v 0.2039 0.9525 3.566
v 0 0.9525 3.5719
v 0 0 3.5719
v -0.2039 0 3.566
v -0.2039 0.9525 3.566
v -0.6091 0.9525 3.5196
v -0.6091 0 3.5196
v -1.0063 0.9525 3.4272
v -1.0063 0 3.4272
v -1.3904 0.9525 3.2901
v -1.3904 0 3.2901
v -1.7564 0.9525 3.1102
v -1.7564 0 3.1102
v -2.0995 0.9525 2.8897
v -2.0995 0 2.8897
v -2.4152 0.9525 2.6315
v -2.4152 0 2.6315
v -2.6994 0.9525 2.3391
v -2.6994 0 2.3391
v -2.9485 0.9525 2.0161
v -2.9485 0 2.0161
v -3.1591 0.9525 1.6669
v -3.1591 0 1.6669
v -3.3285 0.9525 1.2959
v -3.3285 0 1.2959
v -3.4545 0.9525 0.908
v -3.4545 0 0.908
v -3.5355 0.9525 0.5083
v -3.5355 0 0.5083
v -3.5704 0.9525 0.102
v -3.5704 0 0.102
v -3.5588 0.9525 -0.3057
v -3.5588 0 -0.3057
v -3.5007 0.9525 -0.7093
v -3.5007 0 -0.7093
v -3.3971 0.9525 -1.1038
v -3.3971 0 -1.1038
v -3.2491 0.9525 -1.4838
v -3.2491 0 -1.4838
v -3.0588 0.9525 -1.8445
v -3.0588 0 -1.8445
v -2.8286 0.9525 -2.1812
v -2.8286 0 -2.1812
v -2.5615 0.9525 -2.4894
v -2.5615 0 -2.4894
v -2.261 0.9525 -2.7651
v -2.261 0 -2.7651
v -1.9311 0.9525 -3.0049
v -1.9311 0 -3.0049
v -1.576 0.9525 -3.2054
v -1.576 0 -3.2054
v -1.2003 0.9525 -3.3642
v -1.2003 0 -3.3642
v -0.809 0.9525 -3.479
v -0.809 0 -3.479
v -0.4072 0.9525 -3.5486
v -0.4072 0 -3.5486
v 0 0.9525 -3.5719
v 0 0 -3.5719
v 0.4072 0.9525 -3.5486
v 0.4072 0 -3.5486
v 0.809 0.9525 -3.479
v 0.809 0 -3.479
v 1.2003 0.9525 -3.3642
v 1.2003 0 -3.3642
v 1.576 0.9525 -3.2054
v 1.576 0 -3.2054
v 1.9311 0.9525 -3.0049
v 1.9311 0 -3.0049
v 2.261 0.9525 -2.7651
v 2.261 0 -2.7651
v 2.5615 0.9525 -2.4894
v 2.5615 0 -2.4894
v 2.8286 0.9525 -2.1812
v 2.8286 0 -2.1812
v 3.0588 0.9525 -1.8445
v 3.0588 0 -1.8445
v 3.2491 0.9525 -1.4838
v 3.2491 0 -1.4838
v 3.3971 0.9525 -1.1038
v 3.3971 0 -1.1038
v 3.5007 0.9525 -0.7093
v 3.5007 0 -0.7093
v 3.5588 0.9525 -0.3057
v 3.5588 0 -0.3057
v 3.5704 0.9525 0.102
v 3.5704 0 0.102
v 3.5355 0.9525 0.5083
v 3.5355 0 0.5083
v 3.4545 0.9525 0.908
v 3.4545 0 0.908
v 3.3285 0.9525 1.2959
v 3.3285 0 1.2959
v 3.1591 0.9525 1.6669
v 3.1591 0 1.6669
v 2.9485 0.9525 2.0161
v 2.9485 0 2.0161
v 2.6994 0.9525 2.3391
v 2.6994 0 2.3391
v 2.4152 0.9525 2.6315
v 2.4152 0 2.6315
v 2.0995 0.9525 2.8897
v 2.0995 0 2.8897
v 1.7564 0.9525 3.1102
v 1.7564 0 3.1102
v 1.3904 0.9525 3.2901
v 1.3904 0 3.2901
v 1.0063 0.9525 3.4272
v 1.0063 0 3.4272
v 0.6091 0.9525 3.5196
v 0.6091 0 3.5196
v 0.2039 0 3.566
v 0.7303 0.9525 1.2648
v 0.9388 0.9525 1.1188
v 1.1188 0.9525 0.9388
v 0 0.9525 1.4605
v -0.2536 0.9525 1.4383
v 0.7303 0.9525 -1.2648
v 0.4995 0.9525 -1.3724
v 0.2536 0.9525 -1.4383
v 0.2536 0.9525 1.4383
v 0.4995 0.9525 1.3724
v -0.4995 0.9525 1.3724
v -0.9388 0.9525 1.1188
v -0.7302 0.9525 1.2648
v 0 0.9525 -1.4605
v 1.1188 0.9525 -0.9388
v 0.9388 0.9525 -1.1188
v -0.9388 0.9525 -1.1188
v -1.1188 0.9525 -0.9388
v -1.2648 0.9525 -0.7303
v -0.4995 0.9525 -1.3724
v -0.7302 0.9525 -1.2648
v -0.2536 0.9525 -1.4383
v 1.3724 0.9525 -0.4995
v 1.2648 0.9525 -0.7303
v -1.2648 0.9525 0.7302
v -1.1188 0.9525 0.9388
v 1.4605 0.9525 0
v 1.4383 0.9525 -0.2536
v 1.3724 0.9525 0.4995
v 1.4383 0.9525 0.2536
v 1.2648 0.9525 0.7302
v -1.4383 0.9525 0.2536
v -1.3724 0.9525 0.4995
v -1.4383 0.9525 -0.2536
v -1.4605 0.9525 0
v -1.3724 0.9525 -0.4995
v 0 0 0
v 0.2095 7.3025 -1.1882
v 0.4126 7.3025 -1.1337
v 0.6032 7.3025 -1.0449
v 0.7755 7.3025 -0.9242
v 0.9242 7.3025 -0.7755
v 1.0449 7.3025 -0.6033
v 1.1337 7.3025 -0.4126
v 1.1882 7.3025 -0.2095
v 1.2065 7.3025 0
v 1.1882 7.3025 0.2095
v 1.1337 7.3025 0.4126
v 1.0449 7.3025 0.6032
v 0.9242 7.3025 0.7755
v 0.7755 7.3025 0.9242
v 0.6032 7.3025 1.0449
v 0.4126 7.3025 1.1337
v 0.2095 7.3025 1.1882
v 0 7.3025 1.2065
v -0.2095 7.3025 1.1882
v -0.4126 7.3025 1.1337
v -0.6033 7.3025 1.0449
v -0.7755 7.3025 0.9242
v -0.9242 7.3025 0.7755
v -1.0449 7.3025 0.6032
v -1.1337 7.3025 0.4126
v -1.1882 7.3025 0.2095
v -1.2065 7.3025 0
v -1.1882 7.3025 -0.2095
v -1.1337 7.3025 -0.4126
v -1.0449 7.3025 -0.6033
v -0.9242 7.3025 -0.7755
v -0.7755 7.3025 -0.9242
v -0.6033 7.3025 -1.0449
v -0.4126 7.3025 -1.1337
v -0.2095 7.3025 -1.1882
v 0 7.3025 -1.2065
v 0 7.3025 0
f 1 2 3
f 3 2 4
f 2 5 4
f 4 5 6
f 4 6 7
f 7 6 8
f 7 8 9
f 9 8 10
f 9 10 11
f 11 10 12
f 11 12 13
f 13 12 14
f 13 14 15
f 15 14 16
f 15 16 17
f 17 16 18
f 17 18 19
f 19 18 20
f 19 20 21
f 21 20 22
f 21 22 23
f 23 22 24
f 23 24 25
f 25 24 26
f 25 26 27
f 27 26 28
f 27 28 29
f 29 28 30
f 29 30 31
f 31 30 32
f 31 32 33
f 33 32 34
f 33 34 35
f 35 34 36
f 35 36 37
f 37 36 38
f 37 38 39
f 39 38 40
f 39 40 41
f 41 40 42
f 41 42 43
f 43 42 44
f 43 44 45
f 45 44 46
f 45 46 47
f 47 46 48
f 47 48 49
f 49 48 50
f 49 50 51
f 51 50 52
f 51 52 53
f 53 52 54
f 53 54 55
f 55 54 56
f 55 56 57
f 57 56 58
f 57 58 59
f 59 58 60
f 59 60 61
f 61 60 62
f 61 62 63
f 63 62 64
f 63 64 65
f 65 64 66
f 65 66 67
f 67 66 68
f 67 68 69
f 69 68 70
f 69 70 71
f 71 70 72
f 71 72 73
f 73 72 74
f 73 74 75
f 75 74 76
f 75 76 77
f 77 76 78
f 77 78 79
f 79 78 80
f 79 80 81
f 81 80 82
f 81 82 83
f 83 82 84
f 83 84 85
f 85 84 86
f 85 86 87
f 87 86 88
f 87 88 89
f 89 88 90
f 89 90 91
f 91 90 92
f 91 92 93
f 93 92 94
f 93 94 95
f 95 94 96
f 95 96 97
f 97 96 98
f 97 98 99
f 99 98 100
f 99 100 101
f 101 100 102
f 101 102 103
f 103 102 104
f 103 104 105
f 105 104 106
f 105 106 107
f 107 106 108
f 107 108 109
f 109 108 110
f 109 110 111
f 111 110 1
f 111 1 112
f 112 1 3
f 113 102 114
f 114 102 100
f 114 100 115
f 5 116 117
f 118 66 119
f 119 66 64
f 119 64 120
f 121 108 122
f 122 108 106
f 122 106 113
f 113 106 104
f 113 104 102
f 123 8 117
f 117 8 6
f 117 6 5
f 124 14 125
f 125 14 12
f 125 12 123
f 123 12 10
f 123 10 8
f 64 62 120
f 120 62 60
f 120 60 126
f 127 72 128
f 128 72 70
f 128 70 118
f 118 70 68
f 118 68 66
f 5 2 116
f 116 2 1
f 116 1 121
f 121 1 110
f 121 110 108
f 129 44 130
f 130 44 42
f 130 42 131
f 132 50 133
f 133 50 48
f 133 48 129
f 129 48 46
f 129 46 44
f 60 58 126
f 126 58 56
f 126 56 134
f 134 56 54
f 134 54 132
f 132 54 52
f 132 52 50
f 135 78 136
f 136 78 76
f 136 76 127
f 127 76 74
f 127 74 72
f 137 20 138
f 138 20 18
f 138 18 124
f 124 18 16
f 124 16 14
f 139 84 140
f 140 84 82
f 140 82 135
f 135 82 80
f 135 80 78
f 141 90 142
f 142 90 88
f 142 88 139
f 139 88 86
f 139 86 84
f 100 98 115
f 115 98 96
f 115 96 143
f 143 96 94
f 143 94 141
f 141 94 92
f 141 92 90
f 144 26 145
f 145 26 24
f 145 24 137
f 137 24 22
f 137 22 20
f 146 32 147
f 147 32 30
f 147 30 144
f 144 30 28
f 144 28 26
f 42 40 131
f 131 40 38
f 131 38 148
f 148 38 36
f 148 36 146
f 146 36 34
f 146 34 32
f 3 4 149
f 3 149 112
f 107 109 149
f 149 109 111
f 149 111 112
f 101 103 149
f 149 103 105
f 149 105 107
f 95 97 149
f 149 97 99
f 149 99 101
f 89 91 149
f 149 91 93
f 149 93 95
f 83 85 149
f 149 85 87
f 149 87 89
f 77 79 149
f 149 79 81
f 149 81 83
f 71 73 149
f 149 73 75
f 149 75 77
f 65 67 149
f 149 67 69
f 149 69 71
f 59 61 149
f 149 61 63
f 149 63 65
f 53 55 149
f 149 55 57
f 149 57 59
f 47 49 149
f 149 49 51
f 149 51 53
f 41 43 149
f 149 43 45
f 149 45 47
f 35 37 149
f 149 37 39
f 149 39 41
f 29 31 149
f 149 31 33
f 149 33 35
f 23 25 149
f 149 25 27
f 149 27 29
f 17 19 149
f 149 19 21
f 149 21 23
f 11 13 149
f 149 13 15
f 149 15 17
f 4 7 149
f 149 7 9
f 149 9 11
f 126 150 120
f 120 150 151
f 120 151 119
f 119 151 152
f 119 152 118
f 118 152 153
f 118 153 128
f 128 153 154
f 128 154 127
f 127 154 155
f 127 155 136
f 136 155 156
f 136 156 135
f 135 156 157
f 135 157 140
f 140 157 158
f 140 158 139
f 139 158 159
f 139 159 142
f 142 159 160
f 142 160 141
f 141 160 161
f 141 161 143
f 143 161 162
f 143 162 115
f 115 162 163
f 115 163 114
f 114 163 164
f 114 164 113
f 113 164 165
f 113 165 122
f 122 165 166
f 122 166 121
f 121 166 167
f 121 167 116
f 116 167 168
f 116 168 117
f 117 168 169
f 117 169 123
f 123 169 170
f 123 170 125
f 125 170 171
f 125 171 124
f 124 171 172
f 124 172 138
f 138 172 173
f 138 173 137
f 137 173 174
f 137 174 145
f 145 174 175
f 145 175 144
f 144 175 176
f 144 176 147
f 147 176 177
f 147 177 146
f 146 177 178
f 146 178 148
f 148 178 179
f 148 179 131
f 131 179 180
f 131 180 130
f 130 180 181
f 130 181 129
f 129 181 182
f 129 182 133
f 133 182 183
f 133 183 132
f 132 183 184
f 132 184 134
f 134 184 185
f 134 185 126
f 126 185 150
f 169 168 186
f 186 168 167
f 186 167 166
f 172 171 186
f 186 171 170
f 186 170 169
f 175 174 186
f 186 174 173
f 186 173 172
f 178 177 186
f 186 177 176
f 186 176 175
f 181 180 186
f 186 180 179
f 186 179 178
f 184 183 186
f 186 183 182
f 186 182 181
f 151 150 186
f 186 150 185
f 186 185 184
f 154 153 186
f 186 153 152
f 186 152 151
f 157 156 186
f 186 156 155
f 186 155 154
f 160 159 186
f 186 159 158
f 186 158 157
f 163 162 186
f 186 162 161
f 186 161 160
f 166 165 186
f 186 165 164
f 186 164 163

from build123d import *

# Parameters (mm, degrees)
SKETCH1_R           = 3.571875
BOSS_EXTRUDE1_DEPTH = 0.9525
SKETCH2_R           = 1.4605
BOSS_EXTRUDE2_DEPTH = 6.35


with BuildPart() as part:
    # Sketch1 → Boss-Extrude1 (new body)
    with BuildSketch(Plane(origin=(0, 0, 0), x_dir=(1, 0, 0), z_dir=(0, 1, 0))):
        with Locations(Location((0, 0, 0), (0, 0, 90))):
            Circle(SKETCH1_R)
    extrude(amount=BOSS_EXTRUDE1_DEPTH)

    # Sketch2 → Boss-Extrude2 (add)
    with BuildSketch(Plane(origin=(0, 0.9525, 0), x_dir=(1, 0, 0), z_dir=(0, 1, 0))):
        with Locations(Location((0, 0, 0), (0, 0, 270))):
            Circle(SKETCH2_R)
    extrude(amount=BOSS_EXTRUDE2_DEPTH)

    # Sketch3 → Cut-Revolve1 (revolve, cut)
    with BuildSketch(Plane(origin=(0, 0, 0), x_dir=(0, 0, -1), z_dir=(1, 0, 0))):
        Polygon((-1.4605, 0.9525), (-1.2065, 7.3025), (-1.4605, 7.3025), (-1.738282531, 7.3025), align=None)
    revolve(axis=Axis((0, 7.3025, 0), (0, -1, 0)), mode=Mode.SUBTRACT)


solid = part.part
